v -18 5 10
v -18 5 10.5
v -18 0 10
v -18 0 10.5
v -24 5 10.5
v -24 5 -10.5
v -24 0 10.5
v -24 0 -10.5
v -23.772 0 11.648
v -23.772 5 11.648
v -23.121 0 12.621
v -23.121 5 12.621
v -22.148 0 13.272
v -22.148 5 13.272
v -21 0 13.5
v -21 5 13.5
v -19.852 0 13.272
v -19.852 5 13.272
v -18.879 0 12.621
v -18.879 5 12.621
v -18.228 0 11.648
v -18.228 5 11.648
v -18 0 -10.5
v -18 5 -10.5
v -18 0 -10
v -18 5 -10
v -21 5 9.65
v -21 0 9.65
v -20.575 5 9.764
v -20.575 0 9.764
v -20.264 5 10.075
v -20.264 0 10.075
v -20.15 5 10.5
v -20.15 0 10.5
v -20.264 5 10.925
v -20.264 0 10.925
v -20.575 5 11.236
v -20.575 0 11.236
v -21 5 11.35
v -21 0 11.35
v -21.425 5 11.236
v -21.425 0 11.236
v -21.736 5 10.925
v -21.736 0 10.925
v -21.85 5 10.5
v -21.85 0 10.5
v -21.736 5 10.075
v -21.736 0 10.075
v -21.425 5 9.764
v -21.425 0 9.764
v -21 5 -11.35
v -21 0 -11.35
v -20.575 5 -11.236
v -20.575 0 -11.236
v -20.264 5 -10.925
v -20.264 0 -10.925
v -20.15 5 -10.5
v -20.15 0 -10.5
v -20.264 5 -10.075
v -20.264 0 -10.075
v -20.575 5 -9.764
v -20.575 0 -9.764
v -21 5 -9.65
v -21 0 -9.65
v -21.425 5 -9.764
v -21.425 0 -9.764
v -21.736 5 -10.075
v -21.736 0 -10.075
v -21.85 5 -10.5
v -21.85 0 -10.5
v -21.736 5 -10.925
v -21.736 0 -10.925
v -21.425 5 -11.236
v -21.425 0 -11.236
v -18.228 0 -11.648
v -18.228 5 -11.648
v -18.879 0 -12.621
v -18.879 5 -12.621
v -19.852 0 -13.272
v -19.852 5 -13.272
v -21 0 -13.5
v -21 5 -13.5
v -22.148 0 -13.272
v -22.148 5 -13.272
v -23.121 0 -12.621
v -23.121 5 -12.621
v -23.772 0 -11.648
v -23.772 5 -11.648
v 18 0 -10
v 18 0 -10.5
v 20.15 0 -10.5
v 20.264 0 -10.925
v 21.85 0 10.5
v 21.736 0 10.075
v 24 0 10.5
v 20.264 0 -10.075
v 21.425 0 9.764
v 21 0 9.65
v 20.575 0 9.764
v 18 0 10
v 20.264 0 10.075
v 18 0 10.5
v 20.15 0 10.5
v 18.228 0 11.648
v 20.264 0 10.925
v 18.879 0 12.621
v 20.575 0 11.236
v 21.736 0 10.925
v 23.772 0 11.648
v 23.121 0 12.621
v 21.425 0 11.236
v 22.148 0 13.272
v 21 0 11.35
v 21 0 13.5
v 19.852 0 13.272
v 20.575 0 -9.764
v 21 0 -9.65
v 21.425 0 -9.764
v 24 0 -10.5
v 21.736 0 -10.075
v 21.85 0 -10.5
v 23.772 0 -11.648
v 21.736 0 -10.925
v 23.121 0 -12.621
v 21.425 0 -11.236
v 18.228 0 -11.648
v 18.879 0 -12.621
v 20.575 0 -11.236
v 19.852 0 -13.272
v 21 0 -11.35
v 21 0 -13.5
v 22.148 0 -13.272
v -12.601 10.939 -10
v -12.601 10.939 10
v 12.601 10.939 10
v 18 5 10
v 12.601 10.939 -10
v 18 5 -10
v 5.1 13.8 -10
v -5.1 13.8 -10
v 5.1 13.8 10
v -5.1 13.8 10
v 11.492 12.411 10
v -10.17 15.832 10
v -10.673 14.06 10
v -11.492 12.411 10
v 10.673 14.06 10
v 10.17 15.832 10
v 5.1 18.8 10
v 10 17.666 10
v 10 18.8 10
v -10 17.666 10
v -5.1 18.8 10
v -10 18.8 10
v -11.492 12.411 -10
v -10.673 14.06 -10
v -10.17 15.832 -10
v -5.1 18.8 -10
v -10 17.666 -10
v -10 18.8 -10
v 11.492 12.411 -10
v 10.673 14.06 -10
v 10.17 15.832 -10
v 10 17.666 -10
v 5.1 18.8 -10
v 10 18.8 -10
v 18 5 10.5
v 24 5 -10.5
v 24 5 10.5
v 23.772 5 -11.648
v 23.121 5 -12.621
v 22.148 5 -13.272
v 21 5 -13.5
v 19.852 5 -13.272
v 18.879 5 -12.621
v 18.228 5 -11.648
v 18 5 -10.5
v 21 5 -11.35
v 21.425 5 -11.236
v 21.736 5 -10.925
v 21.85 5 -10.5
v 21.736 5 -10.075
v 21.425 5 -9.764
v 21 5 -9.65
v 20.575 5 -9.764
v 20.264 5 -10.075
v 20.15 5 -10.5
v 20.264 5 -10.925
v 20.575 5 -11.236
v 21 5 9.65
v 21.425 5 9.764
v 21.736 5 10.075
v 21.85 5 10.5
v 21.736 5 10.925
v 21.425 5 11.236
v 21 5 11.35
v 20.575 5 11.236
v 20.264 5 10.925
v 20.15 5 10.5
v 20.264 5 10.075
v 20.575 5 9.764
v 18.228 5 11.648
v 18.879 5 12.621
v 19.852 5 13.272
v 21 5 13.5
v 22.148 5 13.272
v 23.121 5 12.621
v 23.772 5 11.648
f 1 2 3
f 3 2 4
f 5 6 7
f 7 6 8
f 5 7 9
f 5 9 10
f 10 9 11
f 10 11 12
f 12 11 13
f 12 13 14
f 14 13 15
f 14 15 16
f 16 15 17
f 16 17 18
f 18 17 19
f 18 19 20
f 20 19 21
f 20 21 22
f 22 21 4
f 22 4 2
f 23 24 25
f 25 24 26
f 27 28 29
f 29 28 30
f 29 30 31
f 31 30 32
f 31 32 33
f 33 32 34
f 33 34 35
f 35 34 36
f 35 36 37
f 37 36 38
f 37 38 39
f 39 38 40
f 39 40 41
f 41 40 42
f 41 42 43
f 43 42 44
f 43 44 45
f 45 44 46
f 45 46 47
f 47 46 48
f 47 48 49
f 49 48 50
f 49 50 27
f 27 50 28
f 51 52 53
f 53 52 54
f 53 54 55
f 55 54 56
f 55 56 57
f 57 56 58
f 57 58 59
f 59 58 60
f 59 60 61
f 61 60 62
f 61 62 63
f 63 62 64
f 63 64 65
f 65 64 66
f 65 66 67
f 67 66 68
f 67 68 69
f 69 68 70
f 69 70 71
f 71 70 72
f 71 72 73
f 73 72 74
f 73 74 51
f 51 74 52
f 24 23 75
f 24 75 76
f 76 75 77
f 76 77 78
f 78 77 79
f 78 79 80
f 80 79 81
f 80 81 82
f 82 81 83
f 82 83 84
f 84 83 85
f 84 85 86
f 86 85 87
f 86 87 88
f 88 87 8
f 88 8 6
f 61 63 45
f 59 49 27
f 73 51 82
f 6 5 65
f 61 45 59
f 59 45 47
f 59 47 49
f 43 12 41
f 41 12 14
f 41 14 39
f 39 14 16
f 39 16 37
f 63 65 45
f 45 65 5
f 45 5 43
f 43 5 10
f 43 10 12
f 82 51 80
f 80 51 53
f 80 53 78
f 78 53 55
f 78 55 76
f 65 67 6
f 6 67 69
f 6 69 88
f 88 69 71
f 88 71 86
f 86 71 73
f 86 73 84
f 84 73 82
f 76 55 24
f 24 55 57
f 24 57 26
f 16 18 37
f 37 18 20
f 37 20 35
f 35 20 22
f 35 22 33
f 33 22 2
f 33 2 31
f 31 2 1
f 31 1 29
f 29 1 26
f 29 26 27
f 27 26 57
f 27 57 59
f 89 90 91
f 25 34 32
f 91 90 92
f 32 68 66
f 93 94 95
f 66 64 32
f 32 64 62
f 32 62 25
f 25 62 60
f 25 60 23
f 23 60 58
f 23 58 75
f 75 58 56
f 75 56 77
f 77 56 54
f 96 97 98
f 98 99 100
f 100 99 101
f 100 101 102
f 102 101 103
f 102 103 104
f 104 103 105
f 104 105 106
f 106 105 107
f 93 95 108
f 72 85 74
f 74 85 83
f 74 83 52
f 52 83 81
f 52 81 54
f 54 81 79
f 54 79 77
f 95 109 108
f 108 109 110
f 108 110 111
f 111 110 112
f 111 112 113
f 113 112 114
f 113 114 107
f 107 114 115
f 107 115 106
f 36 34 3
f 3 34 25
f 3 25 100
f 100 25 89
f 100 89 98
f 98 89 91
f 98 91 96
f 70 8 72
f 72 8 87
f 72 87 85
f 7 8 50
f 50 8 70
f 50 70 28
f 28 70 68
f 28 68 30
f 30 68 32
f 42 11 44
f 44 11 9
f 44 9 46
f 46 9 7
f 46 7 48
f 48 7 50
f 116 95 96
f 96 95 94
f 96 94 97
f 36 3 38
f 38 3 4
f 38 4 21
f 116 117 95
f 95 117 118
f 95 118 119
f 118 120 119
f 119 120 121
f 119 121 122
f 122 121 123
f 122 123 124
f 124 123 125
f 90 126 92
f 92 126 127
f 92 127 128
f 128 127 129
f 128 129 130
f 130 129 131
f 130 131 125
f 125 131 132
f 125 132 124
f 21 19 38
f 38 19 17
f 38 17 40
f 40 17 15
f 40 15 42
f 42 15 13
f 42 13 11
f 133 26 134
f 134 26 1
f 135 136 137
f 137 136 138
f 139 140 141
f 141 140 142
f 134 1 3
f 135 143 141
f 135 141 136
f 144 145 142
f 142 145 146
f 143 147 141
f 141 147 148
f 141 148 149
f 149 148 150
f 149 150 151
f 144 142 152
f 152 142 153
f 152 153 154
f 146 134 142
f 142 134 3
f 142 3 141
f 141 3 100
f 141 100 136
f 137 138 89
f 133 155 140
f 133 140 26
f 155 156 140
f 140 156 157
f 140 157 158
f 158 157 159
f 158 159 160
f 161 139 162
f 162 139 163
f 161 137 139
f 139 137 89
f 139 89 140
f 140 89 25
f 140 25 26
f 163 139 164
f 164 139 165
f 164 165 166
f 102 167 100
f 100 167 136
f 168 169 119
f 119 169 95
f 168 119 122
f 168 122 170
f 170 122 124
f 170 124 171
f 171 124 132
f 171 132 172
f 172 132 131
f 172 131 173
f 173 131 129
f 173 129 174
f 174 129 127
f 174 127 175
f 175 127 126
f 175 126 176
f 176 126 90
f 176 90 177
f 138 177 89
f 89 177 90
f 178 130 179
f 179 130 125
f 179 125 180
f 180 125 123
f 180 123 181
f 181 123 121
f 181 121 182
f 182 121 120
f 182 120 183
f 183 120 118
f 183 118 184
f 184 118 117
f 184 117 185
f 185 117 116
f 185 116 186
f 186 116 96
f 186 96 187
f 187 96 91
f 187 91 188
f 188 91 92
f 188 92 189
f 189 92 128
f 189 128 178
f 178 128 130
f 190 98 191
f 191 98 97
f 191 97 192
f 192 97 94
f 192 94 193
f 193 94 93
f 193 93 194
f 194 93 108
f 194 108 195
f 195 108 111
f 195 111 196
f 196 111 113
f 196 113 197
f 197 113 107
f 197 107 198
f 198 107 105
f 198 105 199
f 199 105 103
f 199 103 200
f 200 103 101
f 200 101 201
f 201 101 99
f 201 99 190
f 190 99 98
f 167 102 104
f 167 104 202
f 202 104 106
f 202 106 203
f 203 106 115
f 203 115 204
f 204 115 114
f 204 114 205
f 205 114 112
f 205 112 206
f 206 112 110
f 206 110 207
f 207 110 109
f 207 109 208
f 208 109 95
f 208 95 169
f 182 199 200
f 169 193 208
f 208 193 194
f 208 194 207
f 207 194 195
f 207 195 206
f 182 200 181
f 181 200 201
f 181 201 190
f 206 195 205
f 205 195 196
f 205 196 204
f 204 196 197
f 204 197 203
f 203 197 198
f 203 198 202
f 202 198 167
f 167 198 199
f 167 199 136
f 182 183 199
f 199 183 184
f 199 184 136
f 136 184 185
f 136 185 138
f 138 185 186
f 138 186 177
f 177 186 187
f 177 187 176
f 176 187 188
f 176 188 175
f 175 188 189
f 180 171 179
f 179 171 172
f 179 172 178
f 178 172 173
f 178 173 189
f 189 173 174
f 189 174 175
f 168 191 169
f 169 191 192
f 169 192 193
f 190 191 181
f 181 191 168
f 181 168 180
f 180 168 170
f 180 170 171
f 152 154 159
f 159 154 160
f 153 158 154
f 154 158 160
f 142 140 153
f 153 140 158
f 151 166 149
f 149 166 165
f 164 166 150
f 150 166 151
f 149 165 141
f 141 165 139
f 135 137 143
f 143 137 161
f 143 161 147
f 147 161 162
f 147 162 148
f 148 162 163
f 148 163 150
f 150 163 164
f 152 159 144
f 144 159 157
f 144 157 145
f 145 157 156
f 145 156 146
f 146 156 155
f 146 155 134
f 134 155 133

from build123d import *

# Parameters (mm, degrees)
SKETCH_1_R           = 0.85
EXTRUDE_1_DEPTH      = 5
EXTRUDE_1_2_DEPTH    = 5
EXTRUDE_2_DEPTH      = 10
EXTRUDE_3_DEPTH      = 10
EXTRUDE_3_DEPTH_BACK = 10
SKETCH_3_W           = 4.9
SKETCH_3_H           = 5
FILLET_1_R           = 10


with BuildPart() as part:
    # ｽｹｯﾁ1 → ﾎﾞｽ - 押し出し1 (new body)
    with BuildSketch(Plane(origin=(0, 0, 0), x_dir=(1, 0, 0), z_dir=(0, 1, 0))):
        with BuildLine():
            Line((-18, -10.5), (-18, 10.5))
            ThreePointArc((-18, 10.5), (-21, 13.5), (-24, 10.5))
            Line((-24, 10.5), (-24, -10.5))
            ThreePointArc((-24, -10.5), (-21, -13.5), (-18, -10.5))
        make_face()
        with Locations((-21, -10.5)):
            Circle(SKETCH_1_R, mode=Mode.SUBTRACT)
        with Locations((-21, 10.5)):
            Circle(SKETCH_1_R, mode=Mode.SUBTRACT)
    extrude(amount=EXTRUDE_1_DEPTH)



with BuildPart() as body_2:
    # ｽｹｯﾁ1 → Extrude 1 2 (new body)
    with BuildSketch(Plane(origin=(0, 0, 0), x_dir=(1, 0, 0), z_dir=(0, 1, 0))):
        with BuildLine():
            ThreePointArc((24, 10.5), (21, 13.5), (18, 10.5))
            Line((18, 10.5), (18, -10.5))
            ThreePointArc((18, -10.5), (21, -13.5), (24, -10.5))
            Line((24, -10.5), (24, 10.5))
        make_face()
        with Locations((21, -10.5)):
            Circle(SKETCH_1_R, mode=Mode.SUBTRACT)
        with Locations((21, 10.5)):
            Circle(SKETCH_1_R, mode=Mode.SUBTRACT)
    extrude(amount=EXTRUDE_1_2_DEPTH)


with BuildPart() as part_1:
    add(part.part)

    add(body_2.part)  # ﾎﾞｽ - 押し出し2 merges body 2
    # ｽｹｯﾁ2 → ﾎﾞｽ - 押し出し2 (add, symmetric)
    with BuildSketch(Plane.XY):
        Polygon((-18, 5), (-18, 0), (18, 0), (18, 5), (10, 13.8), (-10, 13.8), align=None)
    extrude(amount=EXTRUDE_2_DEPTH, both=True)

    # ｽｹｯﾁ3 → ﾎﾞｽ - 押し出し3 (add, two sides: drawn at the far end of the back side and taken through both)
    with BuildSketch(Plane.XY.offset(-EXTRUDE_3_DEPTH_BACK)):
        with Locations((-7.55, 16.3)):
            Rectangle(SKETCH_3_W, SKETCH_3_H)
        with Locations((7.55, 16.3)):
            Rectangle(SKETCH_3_W, SKETCH_3_H)
    extrude(amount=EXTRUDE_3_DEPTH + EXTRUDE_3_DEPTH_BACK)

    # ﾌｨﾚｯﾄ1
    fillet_1_edges = [part_1.edges().sort_by_distance(p)[0] for p in [
        (10, 13.8, 0),
        (-10, 13.8, 0),
    ]]
    fillet(fillet_1_edges, radius=FILLET_1_R)


solid = part_1.part
